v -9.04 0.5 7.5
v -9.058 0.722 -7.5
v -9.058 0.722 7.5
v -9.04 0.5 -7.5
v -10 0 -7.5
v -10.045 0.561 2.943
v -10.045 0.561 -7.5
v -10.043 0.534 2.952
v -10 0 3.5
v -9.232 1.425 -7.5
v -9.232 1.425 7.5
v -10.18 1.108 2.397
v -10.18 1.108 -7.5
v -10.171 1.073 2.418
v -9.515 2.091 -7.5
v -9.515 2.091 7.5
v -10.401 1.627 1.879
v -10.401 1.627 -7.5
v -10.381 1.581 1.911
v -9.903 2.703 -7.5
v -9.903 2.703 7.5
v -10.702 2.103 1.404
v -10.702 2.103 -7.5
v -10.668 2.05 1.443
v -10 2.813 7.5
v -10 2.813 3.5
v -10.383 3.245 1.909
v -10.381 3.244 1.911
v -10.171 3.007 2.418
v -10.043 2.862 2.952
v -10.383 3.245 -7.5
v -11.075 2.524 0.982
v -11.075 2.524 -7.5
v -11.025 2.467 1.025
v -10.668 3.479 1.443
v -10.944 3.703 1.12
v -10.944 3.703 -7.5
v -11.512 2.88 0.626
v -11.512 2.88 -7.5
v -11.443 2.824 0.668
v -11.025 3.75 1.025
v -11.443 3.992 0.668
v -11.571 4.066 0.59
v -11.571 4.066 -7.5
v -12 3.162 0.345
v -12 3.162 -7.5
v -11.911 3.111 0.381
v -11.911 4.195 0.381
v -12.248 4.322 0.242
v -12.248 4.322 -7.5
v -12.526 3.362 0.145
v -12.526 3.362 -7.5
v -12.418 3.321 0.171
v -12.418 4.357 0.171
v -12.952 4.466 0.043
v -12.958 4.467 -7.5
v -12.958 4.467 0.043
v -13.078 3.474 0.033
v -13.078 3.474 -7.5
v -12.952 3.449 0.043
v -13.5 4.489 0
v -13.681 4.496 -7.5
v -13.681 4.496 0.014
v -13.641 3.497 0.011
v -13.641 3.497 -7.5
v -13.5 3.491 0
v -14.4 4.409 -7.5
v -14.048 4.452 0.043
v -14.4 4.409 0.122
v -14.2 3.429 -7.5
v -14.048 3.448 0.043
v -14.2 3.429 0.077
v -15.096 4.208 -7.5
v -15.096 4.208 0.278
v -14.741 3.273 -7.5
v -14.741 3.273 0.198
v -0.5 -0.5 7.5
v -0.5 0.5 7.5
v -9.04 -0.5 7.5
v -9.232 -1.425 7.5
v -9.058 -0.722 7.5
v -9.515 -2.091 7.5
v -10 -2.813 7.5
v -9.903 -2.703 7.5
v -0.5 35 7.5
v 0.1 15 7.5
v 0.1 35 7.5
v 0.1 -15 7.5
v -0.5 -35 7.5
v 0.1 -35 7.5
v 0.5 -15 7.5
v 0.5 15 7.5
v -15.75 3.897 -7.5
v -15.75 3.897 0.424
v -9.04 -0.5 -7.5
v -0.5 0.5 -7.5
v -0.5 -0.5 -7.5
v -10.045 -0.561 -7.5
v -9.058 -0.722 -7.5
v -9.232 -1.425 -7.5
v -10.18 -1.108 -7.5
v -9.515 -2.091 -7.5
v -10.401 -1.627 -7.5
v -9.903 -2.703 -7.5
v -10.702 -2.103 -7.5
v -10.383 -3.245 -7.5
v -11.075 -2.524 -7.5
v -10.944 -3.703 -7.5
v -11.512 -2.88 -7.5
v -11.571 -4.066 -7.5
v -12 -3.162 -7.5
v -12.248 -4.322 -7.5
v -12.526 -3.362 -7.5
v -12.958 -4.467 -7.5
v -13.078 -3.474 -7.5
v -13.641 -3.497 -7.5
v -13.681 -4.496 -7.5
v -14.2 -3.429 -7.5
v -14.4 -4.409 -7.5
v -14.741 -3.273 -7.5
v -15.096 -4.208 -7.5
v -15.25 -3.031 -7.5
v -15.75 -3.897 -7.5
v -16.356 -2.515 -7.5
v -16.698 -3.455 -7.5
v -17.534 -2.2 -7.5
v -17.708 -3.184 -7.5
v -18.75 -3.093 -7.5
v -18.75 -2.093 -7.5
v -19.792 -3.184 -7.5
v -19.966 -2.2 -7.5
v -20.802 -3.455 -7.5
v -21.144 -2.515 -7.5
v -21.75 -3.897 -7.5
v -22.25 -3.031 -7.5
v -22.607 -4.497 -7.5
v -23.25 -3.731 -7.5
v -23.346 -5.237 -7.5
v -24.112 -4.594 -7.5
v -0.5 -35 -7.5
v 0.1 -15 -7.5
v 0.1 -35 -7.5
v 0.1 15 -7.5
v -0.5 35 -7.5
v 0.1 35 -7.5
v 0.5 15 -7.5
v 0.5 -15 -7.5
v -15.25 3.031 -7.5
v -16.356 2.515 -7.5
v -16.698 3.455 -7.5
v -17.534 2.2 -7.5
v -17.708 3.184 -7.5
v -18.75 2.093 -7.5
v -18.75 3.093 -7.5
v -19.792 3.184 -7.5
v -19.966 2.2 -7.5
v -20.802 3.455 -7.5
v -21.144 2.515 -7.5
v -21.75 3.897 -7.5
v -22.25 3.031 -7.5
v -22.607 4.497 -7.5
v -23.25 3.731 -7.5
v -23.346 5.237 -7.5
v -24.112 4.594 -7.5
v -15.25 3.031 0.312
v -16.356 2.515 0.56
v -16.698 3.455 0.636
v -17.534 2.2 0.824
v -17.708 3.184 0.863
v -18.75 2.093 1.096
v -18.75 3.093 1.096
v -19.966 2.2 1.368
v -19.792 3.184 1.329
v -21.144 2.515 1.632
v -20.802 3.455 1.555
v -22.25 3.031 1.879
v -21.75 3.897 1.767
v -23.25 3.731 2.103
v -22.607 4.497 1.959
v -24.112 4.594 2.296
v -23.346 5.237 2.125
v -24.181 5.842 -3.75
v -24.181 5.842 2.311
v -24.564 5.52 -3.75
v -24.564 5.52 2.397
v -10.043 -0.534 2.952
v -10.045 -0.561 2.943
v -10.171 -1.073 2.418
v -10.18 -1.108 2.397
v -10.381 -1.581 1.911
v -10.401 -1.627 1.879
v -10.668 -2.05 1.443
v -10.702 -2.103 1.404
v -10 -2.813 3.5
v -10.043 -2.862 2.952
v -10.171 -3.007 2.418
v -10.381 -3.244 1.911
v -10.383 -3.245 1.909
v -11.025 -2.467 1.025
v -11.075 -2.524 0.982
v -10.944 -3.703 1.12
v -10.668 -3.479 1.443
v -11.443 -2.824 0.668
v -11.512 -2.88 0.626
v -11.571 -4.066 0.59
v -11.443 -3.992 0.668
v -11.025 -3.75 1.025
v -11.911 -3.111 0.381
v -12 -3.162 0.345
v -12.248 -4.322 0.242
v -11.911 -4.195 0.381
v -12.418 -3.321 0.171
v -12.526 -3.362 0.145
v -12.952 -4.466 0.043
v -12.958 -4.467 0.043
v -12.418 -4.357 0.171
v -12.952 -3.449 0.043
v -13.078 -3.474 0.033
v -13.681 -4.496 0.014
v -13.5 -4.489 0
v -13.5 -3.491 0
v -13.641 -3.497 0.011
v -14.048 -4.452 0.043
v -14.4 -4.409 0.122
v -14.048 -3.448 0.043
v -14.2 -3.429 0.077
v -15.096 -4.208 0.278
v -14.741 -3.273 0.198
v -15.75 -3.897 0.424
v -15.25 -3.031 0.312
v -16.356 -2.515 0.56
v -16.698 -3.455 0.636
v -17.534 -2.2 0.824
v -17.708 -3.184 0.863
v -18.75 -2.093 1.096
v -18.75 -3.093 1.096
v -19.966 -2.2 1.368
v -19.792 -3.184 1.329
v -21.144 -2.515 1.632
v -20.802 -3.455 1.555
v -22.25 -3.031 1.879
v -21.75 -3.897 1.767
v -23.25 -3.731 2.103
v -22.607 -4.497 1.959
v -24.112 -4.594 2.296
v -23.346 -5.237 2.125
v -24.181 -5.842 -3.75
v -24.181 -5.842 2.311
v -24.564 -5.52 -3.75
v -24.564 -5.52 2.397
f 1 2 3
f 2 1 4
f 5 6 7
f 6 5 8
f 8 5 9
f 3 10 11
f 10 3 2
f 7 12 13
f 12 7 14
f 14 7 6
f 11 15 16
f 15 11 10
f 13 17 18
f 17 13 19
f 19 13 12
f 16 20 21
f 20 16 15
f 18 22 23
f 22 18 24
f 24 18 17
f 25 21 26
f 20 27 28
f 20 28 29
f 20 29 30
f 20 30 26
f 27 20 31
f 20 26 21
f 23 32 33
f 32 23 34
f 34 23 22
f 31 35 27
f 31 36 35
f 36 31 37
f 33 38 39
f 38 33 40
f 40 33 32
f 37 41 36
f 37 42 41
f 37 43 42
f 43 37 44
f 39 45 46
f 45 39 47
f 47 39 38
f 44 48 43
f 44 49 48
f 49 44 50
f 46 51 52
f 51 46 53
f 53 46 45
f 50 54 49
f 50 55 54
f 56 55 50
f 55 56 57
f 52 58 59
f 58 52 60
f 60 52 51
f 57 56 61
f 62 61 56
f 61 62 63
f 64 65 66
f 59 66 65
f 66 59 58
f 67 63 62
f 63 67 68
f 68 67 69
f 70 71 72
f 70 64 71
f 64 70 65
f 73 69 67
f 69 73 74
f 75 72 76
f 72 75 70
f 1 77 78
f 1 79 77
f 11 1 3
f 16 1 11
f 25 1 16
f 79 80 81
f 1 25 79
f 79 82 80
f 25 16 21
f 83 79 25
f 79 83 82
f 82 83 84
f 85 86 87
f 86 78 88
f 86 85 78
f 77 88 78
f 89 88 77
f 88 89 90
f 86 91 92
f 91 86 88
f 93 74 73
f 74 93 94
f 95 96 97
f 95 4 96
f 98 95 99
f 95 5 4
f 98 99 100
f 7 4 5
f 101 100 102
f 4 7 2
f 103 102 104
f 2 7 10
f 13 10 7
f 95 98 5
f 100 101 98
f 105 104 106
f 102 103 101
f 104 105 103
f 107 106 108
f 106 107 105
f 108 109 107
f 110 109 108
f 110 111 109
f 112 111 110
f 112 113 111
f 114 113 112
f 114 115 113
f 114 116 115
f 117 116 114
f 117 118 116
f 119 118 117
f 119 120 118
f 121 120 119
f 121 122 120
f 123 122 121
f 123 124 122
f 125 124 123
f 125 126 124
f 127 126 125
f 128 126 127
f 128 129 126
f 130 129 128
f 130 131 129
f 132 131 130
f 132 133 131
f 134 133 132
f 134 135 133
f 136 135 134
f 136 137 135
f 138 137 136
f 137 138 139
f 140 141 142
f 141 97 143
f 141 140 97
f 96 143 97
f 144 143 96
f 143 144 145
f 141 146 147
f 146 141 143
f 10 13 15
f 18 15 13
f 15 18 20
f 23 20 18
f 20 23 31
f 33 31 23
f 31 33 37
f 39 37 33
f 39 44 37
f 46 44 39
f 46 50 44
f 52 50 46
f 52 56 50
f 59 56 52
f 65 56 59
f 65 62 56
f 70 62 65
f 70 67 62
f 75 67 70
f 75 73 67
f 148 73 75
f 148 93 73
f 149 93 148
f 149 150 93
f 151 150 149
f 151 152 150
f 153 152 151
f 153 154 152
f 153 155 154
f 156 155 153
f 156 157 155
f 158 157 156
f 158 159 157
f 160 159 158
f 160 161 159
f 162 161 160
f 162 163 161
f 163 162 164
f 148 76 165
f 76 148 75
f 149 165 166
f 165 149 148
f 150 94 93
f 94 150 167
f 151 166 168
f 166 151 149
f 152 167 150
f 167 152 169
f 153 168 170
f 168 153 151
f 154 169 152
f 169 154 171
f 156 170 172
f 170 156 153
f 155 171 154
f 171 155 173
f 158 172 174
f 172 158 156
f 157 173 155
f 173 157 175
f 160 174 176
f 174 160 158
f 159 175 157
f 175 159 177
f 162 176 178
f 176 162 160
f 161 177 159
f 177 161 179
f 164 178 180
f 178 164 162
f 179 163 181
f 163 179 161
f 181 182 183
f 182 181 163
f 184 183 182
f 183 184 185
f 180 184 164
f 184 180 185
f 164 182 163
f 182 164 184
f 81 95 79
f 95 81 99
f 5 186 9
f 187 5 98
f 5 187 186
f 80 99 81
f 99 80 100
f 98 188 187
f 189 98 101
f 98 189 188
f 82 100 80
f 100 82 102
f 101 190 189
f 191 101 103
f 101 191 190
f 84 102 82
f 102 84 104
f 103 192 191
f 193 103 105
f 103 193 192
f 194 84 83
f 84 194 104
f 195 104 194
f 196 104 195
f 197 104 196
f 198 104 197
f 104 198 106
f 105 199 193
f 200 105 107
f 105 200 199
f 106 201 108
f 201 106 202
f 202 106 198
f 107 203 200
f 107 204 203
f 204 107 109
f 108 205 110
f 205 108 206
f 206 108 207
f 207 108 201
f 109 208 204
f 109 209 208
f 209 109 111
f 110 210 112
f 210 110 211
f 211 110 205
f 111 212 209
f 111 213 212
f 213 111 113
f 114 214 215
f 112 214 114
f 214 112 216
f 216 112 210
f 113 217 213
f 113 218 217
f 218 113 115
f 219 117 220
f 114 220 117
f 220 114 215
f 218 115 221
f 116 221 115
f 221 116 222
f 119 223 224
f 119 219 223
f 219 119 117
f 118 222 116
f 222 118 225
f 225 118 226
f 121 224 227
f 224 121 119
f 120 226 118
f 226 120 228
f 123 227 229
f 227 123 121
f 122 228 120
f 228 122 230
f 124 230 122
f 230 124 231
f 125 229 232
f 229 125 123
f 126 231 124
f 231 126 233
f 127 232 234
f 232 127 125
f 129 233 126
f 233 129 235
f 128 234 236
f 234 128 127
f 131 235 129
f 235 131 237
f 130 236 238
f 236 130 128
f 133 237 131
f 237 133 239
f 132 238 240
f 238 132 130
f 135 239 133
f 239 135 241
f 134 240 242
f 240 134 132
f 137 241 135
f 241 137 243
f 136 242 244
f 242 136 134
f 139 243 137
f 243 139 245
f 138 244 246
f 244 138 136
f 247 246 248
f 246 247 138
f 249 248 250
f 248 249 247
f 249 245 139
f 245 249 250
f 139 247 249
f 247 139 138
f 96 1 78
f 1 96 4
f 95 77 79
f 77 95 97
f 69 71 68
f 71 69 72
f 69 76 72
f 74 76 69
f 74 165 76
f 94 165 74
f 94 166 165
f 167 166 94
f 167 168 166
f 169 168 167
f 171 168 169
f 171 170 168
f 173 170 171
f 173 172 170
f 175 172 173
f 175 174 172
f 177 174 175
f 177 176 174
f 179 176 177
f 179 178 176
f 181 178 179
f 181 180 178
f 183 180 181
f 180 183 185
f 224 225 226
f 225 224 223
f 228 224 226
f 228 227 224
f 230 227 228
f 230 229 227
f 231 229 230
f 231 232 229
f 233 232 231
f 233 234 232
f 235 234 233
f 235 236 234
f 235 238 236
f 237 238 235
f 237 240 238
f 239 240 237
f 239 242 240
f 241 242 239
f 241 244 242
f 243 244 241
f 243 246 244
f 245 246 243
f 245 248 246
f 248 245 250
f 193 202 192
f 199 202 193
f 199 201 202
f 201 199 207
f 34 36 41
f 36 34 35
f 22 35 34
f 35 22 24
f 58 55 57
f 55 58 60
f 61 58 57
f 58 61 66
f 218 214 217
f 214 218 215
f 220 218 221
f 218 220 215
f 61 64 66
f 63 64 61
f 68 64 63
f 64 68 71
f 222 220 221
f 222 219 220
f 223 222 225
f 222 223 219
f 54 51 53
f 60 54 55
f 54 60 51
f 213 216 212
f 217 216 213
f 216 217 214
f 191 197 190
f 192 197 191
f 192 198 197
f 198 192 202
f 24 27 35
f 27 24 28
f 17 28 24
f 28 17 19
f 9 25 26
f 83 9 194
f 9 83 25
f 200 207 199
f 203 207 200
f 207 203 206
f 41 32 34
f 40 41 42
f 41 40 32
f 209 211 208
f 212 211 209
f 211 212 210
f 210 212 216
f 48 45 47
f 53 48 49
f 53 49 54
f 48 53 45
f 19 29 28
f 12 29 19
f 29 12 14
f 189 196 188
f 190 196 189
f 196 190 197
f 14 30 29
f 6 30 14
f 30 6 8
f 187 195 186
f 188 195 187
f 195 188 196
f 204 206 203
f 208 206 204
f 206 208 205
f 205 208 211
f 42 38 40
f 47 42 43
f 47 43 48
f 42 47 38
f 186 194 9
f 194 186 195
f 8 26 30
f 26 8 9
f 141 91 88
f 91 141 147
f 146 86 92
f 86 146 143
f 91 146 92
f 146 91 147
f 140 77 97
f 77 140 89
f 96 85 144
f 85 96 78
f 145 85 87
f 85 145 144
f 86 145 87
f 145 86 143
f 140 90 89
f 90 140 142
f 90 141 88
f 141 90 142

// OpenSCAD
// Command Strip Parametric Broom Handle Clip
// Brian Khuu 2023 June

$fn = 40;

/* [Handle Spec] */
handle_diameter = 6; // Toothbrush handle measured 6mm so add a bit of tolerance
handle_offset = 10;
handle_tol = 1; // Toothbrush handle measured 6mm so add a bit of tolerance

/* [Mount Base Spec] */
mount_base_thickness = 1;
mount_tab_length = 20;
mount_tab_thickness = 0.6;
mount_base_length = 30;
mount_base_height = 15;

/* [Mount Curve Spec] */
curve_thickness = 1;
curve_height = mount_base_height;

module hookCrossSection()
{
    square(size = [curve_thickness, curve_height], center = true);
}

module hookHalfCurve(hook_diameter, flange_radius)
{
    majorcurve_radius = hook_diameter/2;
    majorcurve_angle = 90+30;
    flange_radius = hook_diameter/2+3;
    flange_angle = 80;
    
    translate([-majorcurve_radius,0,0])
        union()
        {
            // Major Curve
            rotate_extrude(angle = majorcurve_angle) 
                translate([majorcurve_radius+curve_thickness/2, 0, 0])
                    hookCrossSection();
            // Mini Curve
            rotate([0,0,-180+majorcurve_angle])
            translate([-majorcurve_radius-flange_radius-curve_thickness/2,0,0])
            rotate_extrude(angle = -flange_angle) 
                translate([flange_radius, 0, 0])        
                    hookCrossSection();
            // Mini Curve Cap
            rotate([0,0,-180+majorcurve_angle])
            translate([-majorcurve_radius-flange_radius-curve_thickness/2,0,0])
                rotate([0,0,-flange_angle])
                    translate([flange_radius, 0, 0])
                        rotate([90,0,0])
                            linear_extrude(height=1, scale=0.5)
                                hookCrossSection();
        }  
}


module hookToothbrush()
{
    hook_diameter = handle_diameter + handle_tol;
    flange_radius = hook_diameter/2+3;
    difference()
    {
        union()
        {
            translate([-handle_offset,0,0])
                union()
                {
                    hookHalfCurve(hook_diameter, flange_radius);
                    mirror([0,1,0])
                        hookHalfCurve(hook_diameter, flange_radius);
                }
            translate([-handle_offset/2,0,0])
                cube([handle_offset,curve_thickness,curve_height], center=true);
        }
        translate([-handle_offset,0,0])
            hull()
            {
                translate([-hook_diameter/2,0,hook_diameter/2])
                    rotate([90,0,0])
                        cylinder(d=hook_diameter, h=hook_diameter*2, center=true);   
                translate([-hook_diameter/2,0,mount_base_height/2])
                    rotate([90,0,0])
                        cylinder(d=hook_diameter, h=hook_diameter*2, center=true);        
                translate([curve_thickness-hook_diameter-curve_thickness-flange_radius-1.5,0,mount_base_height/2])
                    rotate([90,0,0])
                        cylinder(d=0.01, h=hook_diameter*2, center=true);       
                translate([curve_thickness-hook_diameter-curve_thickness-flange_radius-1.5,0,mount_base_height/6])
                    rotate([90,0,0])
                        cylinder(d=0.01, h=hook_diameter*2, center=true);               
                
            }
    }
    translate([-handle_offset-handle_diameter/2,0,0])
        %cylinder(d=handle_diameter, h=mount_base_height+10, center=true);
}

union()
{
    hookToothbrush();
    rotate([0,0,-90])
        cube([mount_base_length, mount_base_thickness, curve_height], center=true);
    translate([-(mount_base_thickness-mount_tab_thickness)/2,mount_base_length/2+mount_tab_length/2,0])
        rotate([0,0,-90])
            cube([mount_tab_length, mount_tab_thickness, curve_height], center=true);
    translate([-(mount_base_thickness-mount_tab_thickness)/2,-(mount_base_length/2+mount_tab_length/2),0])
        rotate([0,0,-90])
            cube([mount_tab_length, mount_tab_thickness, curve_height], center=true);
}
